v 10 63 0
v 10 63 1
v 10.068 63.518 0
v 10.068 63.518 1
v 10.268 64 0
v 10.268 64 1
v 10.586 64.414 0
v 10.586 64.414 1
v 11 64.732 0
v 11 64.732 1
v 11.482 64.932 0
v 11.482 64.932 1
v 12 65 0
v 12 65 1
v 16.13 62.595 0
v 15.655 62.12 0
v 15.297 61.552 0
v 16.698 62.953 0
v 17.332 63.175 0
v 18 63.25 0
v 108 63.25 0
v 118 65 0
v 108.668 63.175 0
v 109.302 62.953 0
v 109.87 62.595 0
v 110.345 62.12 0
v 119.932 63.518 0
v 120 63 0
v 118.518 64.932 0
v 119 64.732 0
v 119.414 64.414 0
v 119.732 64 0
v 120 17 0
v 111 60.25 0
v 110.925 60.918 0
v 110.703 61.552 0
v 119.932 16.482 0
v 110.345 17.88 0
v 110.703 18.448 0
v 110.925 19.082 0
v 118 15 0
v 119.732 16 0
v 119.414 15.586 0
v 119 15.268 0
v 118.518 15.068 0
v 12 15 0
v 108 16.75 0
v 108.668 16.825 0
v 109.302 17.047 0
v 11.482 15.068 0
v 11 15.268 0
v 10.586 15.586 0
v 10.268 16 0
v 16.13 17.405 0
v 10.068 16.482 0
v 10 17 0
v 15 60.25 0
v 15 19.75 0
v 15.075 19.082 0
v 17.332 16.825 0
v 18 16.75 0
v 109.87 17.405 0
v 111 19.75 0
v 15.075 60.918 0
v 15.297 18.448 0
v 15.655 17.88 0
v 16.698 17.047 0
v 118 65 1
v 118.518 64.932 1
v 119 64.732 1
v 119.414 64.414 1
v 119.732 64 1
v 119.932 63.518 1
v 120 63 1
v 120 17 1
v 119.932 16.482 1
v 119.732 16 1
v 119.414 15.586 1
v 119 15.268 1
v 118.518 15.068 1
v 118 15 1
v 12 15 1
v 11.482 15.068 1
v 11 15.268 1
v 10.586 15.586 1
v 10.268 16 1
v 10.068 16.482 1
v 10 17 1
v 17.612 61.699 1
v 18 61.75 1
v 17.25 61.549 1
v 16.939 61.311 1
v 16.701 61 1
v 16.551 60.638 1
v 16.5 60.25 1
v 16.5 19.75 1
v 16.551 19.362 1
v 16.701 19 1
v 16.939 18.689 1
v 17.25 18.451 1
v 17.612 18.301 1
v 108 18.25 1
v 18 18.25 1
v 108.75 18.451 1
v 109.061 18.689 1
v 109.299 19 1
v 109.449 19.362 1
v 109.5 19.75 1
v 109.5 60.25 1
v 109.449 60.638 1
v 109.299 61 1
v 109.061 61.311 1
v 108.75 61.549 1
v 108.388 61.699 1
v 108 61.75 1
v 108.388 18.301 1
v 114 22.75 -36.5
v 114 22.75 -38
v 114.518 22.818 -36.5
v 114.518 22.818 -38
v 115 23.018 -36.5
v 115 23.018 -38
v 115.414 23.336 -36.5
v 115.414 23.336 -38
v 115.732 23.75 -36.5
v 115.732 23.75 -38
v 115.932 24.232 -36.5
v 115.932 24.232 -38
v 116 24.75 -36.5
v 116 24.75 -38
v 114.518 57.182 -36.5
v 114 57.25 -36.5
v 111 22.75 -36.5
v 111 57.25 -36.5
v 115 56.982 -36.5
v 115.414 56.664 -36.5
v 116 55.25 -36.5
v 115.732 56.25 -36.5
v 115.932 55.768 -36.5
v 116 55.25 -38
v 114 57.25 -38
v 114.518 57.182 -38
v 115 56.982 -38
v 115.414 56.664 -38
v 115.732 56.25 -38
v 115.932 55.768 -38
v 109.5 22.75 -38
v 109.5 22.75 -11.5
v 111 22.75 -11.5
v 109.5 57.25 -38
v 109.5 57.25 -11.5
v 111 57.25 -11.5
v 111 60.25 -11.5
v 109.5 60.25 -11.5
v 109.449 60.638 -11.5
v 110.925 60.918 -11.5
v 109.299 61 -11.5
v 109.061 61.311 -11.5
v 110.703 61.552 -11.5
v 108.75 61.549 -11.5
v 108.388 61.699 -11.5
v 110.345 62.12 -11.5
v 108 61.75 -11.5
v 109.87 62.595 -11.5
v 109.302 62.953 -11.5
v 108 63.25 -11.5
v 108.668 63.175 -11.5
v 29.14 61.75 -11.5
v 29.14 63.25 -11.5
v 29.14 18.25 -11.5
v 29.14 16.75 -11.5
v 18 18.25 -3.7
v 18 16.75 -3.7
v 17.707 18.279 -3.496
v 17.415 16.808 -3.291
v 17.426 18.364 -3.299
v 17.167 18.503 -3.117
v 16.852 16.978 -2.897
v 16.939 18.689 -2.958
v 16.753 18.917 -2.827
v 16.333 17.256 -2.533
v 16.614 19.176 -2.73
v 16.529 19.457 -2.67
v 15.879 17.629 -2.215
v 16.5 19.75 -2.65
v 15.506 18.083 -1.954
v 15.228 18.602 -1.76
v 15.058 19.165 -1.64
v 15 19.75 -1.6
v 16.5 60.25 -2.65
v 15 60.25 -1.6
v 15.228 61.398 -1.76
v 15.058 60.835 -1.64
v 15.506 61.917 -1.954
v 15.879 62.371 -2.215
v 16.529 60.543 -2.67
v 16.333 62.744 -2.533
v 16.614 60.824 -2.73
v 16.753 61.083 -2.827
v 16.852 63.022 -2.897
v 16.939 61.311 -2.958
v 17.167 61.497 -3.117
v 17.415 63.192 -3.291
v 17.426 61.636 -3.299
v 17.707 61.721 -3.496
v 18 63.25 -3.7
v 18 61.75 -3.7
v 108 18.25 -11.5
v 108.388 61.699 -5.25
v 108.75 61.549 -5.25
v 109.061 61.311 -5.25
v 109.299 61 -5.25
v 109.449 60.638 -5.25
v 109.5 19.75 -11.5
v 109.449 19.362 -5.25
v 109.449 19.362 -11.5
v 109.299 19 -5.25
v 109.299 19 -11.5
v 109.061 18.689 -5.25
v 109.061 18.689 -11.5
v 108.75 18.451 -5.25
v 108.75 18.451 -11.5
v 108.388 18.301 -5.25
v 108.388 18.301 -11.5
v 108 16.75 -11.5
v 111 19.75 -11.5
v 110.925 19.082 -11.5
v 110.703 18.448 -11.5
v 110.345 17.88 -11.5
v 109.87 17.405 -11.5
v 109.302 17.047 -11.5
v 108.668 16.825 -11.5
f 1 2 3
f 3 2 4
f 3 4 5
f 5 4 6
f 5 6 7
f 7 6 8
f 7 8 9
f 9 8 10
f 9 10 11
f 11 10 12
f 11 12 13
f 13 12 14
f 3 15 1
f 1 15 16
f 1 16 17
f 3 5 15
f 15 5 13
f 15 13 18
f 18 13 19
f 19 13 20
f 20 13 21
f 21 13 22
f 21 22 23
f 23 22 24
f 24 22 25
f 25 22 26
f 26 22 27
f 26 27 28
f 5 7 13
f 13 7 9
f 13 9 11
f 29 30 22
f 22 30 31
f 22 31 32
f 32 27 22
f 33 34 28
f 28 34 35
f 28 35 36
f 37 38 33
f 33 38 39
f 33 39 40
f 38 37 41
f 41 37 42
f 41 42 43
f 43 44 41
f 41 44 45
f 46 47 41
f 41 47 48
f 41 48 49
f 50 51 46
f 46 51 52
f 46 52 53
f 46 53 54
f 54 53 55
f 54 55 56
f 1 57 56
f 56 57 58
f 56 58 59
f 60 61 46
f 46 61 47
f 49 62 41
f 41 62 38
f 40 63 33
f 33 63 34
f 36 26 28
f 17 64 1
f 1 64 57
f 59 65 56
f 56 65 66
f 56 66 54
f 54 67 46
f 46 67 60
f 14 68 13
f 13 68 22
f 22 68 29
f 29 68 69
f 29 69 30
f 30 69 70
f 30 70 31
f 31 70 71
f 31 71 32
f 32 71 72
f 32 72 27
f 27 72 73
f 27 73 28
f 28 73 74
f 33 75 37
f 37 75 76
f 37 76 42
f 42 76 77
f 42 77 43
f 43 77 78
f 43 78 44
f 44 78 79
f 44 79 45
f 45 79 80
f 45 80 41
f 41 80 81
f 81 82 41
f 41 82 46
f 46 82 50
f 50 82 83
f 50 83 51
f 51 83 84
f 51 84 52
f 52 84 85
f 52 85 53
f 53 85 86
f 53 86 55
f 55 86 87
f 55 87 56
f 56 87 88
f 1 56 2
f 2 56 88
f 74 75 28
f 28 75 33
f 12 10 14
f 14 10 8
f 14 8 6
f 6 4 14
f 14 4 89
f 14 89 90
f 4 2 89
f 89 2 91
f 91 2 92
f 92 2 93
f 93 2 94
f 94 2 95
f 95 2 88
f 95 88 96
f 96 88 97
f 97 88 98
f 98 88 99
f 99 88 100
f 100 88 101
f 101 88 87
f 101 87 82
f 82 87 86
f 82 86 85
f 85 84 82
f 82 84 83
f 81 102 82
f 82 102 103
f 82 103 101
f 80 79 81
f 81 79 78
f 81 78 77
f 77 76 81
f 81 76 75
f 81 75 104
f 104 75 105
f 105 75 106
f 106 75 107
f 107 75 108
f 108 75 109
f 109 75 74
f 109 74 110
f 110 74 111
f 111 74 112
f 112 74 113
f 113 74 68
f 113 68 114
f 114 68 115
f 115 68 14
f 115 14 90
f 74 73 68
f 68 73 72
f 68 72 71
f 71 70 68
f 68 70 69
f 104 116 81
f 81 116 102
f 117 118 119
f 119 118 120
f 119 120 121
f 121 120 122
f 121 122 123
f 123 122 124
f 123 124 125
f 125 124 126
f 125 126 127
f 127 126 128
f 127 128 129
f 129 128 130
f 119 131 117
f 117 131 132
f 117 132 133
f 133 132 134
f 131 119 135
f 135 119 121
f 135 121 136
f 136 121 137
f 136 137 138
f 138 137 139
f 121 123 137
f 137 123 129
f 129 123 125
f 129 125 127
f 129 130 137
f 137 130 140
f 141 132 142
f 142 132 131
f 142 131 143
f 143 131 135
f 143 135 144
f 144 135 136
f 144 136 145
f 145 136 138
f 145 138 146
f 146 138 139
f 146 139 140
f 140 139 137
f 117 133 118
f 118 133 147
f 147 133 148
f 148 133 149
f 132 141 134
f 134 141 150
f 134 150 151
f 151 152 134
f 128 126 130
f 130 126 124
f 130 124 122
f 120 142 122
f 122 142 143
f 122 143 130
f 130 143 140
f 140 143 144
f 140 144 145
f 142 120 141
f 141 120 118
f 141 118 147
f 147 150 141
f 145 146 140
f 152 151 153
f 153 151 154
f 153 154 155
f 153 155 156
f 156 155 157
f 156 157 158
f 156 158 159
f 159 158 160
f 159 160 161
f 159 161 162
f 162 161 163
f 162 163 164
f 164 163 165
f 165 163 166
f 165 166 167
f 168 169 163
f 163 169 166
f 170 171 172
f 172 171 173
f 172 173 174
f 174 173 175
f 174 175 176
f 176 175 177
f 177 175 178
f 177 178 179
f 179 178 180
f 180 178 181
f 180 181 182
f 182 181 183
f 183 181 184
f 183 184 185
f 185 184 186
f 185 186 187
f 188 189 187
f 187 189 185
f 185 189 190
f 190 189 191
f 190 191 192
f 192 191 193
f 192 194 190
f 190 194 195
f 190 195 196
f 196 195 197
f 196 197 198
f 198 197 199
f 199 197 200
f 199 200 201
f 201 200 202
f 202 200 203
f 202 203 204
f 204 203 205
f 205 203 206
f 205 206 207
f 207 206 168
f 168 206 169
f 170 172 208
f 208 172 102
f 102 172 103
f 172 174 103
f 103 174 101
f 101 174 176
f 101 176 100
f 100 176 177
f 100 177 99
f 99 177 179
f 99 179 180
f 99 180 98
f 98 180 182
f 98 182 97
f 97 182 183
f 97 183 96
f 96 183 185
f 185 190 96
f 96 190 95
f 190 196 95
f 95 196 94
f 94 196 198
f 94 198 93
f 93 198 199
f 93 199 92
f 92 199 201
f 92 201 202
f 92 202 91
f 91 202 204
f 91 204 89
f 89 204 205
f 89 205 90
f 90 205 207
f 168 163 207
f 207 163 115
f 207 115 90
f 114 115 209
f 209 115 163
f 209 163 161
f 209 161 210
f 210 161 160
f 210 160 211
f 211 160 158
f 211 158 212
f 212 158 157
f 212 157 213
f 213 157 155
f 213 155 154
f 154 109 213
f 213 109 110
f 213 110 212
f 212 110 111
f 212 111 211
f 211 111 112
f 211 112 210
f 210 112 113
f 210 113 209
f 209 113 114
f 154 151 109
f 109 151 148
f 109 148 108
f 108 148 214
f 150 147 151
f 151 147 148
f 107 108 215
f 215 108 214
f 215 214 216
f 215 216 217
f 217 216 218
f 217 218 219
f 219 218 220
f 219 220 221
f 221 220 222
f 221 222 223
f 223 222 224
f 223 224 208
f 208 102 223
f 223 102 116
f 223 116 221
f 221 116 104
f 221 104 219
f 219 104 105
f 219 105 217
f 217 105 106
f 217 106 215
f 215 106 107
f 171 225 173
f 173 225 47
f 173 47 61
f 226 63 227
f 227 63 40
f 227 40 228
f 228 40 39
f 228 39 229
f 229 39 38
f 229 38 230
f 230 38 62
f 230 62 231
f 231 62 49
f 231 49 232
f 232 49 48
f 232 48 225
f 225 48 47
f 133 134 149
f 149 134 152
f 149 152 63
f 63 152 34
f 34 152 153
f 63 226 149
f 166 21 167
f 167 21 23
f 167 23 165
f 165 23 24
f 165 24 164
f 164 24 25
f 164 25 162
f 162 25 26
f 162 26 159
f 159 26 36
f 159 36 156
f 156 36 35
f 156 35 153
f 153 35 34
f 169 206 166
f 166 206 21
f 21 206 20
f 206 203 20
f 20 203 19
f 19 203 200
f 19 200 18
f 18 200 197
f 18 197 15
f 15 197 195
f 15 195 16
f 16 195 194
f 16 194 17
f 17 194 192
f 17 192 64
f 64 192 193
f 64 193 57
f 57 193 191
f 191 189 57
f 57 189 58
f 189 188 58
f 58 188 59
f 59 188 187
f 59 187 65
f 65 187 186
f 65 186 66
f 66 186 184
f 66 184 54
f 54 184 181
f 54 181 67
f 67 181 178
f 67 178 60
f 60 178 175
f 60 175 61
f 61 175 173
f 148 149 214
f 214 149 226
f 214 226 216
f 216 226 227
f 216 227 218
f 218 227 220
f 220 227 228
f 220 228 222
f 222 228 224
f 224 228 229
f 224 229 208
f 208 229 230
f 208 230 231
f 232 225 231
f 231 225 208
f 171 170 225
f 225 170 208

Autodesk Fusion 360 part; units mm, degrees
sketch "Sketch2" plane through (0, 0, 0) normal (0, 0, -1) x (1, 0, 0)
  line L0 (0, 0) -> (0, -80)
  line L1 (0, -80) -> (120, -80)
  line L2 (120, -80) -> (120, 0)
  line L3 (120, 0) -> (0, 0)
  line L4 (18, -18.25) -> (108, -18.25)
  line L5 (109.5, -19.75) -> (109.5, -60.25)
  line L6 (108, -61.75) -> (18, -61.75)
  line L7 (16.5, -60.25) -> (16.5, -19.75)
  arc A0 (18, -18.25) -> (16.5, -19.75) centre (18, -19.75) ccw
  arc A1 (16.5, -60.25) -> (18, -61.75) centre (18, -60.25) ccw
  arc A2 (109.5, -19.75) -> (108, -18.25) centre (108, -19.75) ccw
  arc A3 (108, -61.75) -> (109.5, -60.25) centre (108, -60.25) ccw
  point P0 (16.5, -18.25)
  point P1 (109.5, -18.25)
  point P2 (16.5, -61.75)
  dimension "d8" = 93
  dimension "d9" = 43.5
  dimension "d10" = 18.25
  dimension "d11" = 18.25
  dimension "d12" = 16.5
  dimension "d15" = 1.5
  dimension "d16" = 1.5
sketch "Sketch3" plane through (0, 0, 0) normal (0, 0, -1) x (1, 0, 0)
  line L0 (18, -18.25) -> (108, -18.25)
  arc A0 (109.5, -19.75) -> (108, -18.25) centre (108, -19.75) ccw
  line L1 (109.5, -19.75) -> (109.5, -60.25)
  arc A1 (108, -61.75) -> (109.5, -60.25) centre (108, -60.25) ccw
  line L2 (108, -61.75) -> (18, -61.75)
  arc A2 (16.5, -60.25) -> (18, -61.75) centre (18, -60.25) ccw
  line L3 (16.5, -60.25) -> (16.5, -19.75)
  arc A3 (18, -18.25) -> (16.5, -19.75) centre (18, -19.75) ccw
  line L4 (0, 0) -> (0, -80)
  line L5 (0, -80) -> (120, -80)
  line L6 (120, -80) -> (120, 0)
  line L7 (120, 0) -> (0, 0)
  arc A4 (111, -19.75) -> (108, -16.75) centre (108, -19.75) ccw
  line L8 (18, -16.75) -> (108, -16.75)
  arc A5 (18, -16.75) -> (15, -19.75) centre (18, -19.75) ccw
  line L9 (15, -60.25) -> (15, -19.75)
  arc A6 (15, -60.25) -> (18, -63.25) centre (18, -60.25) ccw
  line L10 (108, -63.25) -> (18, -63.25)
  arc A7 (108, -63.25) -> (111, -60.25) centre (108, -60.25) ccw
  line L11 (111, -19.75) -> (111, -60.25)
  dimension "d17" = -1.5
extrude "Extrude3" add sketch "Sketch3" along normal blind 11.5 contours A4 L8 A5 L9 A6 L10 A7 L11
sketch "Sketch4" plane through (0, 16.75, 0) normal (0, -1, 0) x (1, 0, 0)
  line L0 (18, 0) -> (18, -11.5)
  line L1 (18, -11.5) -> (108, -11.5)
  line L2 (108, -11.5) -> (108, 0)
  line L3 (15, 0) -> (15, -1.6) construction
  line L4 (15, -1.6) -> (29.14, -11.5)
  line L5 (15, 0) -> (15, -11.5)
  line L6 (29.14, -11.5) -> (15, -11.5)
  line L7 (15, -1.6) -> (15, -11.5)
  line L8 (108, 0) -> (18, 0)
  point P0 (15, -11.5)
  dimension "d20" = 1.6
  dimension "d21" = 14.14
extrude "Extrude4" cut sketch "Sketch4" against normal up to surface (46.5 mm away) contours L0 L1 L4 L6 | L0 L4 L5 L6 L7
sketch "Sketch5" plane through (0, 0, -11.5) normal (0, 0, -1) x (1, 0, 0)
  line L0 (29.14, -63.25) -> (108, -63.25)
  arc A0 (108, -63.25) -> (111, -60.25) centre (108, -60.25) ccw
  line L1 (111, -60.25) -> (111, -19.75)
  arc A1 (111, -19.75) -> (108, -16.75) centre (108, -19.75) ccw
  line L2 (108, -16.75) -> (29.14, -16.75)
  line L3 (29.14, -18.25) -> (108, -18.25)
  arc A2 (109.5, -19.75) -> (108, -18.25) centre (108, -19.75) ccw
  line L4 (109.5, -19.75) -> (109.5, -60.25)
  arc A3 (108, -61.75) -> (109.5, -60.25) centre (108, -60.25) ccw
  line L5 (108, -61.75) -> (29.14, -61.75)
  line L6 (109.5, -22.75) -> (111, -22.75)
  line L7 (111, -22.75) -> (111, -57.25)
  line L8 (111, -57.25) -> (109.5, -57.25)
  line L9 (109.5, -57.25) -> (109.5, -22.75)
  line L10 (29.14, -16.75) -> (29.14, -18.25)
  line L11 (29.14, -61.75) -> (29.14, -63.25)
  dimension "d26" = 1.5
  dimension "d27" = 34.5
  dimension "d28" = 4.5
  dimension "d29" = 4.5
extrude "Extrude5" add sketch "Sketch5" along normal blind 26.5 contours L1 L4 L6 L7 L8 L9
sketch "Sketch6" plane through (111, 0, 0) normal (1, 0, 0) x (0, 1, 0)
  line L0 (19.75, 0) -> (19.75, -11.5)
  line L1 (19.75, -11.5) -> (22.75, -11.5)
  line L2 (22.75, -11.5) -> (22.75, -38)
  line L3 (22.75, -38) -> (57.25, -38)
  line L4 (57.25, -38) -> (57.25, -11.5)
  line L5 (57.25, -11.5) -> (60.25, -11.5)
  line L6 (60.25, -11.5) -> (60.25, 0)
  line L7 (22.75, -38) -> (57.25, -38)
  line L8 (57.25, -38) -> (57.25, -36.5)
  line L9 (57.25, -36.5) -> (22.75, -36.5)
  line L10 (22.75, -36.5) -> (22.75, -38)
  line L11 (60.25, 0) -> (19.75, 0)
  dimension "d34" = 34.5
  dimension "d35" = 1.5
extrude "Extrude6" add sketch "Sketch6" along normal blind 5 contours L2 L3 L4 L7 L8 L9 L10
fillet "Fillet4" radius 2 2 edges at (116, 57.25, -37.25) (116, 22.75, -37.25)
sketch "Sketch7" plane through (0, 0, 0) normal (0, 0, 1) x (1, 0, 0)
  line L0 (120, 65) -> (10, 65)
  line L1 (10, 65) -> (10, 15)
  line L2 (10, 15) -> (120, 15)
  line L3 (120, 15) -> (120, 65)
extrude "Extrude7" add sketch "Sketch7" along normal blind 1
extrude "Extrude8" cut 1 faces at (78, 32.75, 0) along direction (0, 0, 1) up to surface (1 mm away)
fillet "Fillet5" radius 2 4 edges at (10, 15, 0.5) (120, 15, 0.5) (120, 65, 0.5) (10, 65, 0.5)
equation "d10 = d11"
equation "d28 = d29"
